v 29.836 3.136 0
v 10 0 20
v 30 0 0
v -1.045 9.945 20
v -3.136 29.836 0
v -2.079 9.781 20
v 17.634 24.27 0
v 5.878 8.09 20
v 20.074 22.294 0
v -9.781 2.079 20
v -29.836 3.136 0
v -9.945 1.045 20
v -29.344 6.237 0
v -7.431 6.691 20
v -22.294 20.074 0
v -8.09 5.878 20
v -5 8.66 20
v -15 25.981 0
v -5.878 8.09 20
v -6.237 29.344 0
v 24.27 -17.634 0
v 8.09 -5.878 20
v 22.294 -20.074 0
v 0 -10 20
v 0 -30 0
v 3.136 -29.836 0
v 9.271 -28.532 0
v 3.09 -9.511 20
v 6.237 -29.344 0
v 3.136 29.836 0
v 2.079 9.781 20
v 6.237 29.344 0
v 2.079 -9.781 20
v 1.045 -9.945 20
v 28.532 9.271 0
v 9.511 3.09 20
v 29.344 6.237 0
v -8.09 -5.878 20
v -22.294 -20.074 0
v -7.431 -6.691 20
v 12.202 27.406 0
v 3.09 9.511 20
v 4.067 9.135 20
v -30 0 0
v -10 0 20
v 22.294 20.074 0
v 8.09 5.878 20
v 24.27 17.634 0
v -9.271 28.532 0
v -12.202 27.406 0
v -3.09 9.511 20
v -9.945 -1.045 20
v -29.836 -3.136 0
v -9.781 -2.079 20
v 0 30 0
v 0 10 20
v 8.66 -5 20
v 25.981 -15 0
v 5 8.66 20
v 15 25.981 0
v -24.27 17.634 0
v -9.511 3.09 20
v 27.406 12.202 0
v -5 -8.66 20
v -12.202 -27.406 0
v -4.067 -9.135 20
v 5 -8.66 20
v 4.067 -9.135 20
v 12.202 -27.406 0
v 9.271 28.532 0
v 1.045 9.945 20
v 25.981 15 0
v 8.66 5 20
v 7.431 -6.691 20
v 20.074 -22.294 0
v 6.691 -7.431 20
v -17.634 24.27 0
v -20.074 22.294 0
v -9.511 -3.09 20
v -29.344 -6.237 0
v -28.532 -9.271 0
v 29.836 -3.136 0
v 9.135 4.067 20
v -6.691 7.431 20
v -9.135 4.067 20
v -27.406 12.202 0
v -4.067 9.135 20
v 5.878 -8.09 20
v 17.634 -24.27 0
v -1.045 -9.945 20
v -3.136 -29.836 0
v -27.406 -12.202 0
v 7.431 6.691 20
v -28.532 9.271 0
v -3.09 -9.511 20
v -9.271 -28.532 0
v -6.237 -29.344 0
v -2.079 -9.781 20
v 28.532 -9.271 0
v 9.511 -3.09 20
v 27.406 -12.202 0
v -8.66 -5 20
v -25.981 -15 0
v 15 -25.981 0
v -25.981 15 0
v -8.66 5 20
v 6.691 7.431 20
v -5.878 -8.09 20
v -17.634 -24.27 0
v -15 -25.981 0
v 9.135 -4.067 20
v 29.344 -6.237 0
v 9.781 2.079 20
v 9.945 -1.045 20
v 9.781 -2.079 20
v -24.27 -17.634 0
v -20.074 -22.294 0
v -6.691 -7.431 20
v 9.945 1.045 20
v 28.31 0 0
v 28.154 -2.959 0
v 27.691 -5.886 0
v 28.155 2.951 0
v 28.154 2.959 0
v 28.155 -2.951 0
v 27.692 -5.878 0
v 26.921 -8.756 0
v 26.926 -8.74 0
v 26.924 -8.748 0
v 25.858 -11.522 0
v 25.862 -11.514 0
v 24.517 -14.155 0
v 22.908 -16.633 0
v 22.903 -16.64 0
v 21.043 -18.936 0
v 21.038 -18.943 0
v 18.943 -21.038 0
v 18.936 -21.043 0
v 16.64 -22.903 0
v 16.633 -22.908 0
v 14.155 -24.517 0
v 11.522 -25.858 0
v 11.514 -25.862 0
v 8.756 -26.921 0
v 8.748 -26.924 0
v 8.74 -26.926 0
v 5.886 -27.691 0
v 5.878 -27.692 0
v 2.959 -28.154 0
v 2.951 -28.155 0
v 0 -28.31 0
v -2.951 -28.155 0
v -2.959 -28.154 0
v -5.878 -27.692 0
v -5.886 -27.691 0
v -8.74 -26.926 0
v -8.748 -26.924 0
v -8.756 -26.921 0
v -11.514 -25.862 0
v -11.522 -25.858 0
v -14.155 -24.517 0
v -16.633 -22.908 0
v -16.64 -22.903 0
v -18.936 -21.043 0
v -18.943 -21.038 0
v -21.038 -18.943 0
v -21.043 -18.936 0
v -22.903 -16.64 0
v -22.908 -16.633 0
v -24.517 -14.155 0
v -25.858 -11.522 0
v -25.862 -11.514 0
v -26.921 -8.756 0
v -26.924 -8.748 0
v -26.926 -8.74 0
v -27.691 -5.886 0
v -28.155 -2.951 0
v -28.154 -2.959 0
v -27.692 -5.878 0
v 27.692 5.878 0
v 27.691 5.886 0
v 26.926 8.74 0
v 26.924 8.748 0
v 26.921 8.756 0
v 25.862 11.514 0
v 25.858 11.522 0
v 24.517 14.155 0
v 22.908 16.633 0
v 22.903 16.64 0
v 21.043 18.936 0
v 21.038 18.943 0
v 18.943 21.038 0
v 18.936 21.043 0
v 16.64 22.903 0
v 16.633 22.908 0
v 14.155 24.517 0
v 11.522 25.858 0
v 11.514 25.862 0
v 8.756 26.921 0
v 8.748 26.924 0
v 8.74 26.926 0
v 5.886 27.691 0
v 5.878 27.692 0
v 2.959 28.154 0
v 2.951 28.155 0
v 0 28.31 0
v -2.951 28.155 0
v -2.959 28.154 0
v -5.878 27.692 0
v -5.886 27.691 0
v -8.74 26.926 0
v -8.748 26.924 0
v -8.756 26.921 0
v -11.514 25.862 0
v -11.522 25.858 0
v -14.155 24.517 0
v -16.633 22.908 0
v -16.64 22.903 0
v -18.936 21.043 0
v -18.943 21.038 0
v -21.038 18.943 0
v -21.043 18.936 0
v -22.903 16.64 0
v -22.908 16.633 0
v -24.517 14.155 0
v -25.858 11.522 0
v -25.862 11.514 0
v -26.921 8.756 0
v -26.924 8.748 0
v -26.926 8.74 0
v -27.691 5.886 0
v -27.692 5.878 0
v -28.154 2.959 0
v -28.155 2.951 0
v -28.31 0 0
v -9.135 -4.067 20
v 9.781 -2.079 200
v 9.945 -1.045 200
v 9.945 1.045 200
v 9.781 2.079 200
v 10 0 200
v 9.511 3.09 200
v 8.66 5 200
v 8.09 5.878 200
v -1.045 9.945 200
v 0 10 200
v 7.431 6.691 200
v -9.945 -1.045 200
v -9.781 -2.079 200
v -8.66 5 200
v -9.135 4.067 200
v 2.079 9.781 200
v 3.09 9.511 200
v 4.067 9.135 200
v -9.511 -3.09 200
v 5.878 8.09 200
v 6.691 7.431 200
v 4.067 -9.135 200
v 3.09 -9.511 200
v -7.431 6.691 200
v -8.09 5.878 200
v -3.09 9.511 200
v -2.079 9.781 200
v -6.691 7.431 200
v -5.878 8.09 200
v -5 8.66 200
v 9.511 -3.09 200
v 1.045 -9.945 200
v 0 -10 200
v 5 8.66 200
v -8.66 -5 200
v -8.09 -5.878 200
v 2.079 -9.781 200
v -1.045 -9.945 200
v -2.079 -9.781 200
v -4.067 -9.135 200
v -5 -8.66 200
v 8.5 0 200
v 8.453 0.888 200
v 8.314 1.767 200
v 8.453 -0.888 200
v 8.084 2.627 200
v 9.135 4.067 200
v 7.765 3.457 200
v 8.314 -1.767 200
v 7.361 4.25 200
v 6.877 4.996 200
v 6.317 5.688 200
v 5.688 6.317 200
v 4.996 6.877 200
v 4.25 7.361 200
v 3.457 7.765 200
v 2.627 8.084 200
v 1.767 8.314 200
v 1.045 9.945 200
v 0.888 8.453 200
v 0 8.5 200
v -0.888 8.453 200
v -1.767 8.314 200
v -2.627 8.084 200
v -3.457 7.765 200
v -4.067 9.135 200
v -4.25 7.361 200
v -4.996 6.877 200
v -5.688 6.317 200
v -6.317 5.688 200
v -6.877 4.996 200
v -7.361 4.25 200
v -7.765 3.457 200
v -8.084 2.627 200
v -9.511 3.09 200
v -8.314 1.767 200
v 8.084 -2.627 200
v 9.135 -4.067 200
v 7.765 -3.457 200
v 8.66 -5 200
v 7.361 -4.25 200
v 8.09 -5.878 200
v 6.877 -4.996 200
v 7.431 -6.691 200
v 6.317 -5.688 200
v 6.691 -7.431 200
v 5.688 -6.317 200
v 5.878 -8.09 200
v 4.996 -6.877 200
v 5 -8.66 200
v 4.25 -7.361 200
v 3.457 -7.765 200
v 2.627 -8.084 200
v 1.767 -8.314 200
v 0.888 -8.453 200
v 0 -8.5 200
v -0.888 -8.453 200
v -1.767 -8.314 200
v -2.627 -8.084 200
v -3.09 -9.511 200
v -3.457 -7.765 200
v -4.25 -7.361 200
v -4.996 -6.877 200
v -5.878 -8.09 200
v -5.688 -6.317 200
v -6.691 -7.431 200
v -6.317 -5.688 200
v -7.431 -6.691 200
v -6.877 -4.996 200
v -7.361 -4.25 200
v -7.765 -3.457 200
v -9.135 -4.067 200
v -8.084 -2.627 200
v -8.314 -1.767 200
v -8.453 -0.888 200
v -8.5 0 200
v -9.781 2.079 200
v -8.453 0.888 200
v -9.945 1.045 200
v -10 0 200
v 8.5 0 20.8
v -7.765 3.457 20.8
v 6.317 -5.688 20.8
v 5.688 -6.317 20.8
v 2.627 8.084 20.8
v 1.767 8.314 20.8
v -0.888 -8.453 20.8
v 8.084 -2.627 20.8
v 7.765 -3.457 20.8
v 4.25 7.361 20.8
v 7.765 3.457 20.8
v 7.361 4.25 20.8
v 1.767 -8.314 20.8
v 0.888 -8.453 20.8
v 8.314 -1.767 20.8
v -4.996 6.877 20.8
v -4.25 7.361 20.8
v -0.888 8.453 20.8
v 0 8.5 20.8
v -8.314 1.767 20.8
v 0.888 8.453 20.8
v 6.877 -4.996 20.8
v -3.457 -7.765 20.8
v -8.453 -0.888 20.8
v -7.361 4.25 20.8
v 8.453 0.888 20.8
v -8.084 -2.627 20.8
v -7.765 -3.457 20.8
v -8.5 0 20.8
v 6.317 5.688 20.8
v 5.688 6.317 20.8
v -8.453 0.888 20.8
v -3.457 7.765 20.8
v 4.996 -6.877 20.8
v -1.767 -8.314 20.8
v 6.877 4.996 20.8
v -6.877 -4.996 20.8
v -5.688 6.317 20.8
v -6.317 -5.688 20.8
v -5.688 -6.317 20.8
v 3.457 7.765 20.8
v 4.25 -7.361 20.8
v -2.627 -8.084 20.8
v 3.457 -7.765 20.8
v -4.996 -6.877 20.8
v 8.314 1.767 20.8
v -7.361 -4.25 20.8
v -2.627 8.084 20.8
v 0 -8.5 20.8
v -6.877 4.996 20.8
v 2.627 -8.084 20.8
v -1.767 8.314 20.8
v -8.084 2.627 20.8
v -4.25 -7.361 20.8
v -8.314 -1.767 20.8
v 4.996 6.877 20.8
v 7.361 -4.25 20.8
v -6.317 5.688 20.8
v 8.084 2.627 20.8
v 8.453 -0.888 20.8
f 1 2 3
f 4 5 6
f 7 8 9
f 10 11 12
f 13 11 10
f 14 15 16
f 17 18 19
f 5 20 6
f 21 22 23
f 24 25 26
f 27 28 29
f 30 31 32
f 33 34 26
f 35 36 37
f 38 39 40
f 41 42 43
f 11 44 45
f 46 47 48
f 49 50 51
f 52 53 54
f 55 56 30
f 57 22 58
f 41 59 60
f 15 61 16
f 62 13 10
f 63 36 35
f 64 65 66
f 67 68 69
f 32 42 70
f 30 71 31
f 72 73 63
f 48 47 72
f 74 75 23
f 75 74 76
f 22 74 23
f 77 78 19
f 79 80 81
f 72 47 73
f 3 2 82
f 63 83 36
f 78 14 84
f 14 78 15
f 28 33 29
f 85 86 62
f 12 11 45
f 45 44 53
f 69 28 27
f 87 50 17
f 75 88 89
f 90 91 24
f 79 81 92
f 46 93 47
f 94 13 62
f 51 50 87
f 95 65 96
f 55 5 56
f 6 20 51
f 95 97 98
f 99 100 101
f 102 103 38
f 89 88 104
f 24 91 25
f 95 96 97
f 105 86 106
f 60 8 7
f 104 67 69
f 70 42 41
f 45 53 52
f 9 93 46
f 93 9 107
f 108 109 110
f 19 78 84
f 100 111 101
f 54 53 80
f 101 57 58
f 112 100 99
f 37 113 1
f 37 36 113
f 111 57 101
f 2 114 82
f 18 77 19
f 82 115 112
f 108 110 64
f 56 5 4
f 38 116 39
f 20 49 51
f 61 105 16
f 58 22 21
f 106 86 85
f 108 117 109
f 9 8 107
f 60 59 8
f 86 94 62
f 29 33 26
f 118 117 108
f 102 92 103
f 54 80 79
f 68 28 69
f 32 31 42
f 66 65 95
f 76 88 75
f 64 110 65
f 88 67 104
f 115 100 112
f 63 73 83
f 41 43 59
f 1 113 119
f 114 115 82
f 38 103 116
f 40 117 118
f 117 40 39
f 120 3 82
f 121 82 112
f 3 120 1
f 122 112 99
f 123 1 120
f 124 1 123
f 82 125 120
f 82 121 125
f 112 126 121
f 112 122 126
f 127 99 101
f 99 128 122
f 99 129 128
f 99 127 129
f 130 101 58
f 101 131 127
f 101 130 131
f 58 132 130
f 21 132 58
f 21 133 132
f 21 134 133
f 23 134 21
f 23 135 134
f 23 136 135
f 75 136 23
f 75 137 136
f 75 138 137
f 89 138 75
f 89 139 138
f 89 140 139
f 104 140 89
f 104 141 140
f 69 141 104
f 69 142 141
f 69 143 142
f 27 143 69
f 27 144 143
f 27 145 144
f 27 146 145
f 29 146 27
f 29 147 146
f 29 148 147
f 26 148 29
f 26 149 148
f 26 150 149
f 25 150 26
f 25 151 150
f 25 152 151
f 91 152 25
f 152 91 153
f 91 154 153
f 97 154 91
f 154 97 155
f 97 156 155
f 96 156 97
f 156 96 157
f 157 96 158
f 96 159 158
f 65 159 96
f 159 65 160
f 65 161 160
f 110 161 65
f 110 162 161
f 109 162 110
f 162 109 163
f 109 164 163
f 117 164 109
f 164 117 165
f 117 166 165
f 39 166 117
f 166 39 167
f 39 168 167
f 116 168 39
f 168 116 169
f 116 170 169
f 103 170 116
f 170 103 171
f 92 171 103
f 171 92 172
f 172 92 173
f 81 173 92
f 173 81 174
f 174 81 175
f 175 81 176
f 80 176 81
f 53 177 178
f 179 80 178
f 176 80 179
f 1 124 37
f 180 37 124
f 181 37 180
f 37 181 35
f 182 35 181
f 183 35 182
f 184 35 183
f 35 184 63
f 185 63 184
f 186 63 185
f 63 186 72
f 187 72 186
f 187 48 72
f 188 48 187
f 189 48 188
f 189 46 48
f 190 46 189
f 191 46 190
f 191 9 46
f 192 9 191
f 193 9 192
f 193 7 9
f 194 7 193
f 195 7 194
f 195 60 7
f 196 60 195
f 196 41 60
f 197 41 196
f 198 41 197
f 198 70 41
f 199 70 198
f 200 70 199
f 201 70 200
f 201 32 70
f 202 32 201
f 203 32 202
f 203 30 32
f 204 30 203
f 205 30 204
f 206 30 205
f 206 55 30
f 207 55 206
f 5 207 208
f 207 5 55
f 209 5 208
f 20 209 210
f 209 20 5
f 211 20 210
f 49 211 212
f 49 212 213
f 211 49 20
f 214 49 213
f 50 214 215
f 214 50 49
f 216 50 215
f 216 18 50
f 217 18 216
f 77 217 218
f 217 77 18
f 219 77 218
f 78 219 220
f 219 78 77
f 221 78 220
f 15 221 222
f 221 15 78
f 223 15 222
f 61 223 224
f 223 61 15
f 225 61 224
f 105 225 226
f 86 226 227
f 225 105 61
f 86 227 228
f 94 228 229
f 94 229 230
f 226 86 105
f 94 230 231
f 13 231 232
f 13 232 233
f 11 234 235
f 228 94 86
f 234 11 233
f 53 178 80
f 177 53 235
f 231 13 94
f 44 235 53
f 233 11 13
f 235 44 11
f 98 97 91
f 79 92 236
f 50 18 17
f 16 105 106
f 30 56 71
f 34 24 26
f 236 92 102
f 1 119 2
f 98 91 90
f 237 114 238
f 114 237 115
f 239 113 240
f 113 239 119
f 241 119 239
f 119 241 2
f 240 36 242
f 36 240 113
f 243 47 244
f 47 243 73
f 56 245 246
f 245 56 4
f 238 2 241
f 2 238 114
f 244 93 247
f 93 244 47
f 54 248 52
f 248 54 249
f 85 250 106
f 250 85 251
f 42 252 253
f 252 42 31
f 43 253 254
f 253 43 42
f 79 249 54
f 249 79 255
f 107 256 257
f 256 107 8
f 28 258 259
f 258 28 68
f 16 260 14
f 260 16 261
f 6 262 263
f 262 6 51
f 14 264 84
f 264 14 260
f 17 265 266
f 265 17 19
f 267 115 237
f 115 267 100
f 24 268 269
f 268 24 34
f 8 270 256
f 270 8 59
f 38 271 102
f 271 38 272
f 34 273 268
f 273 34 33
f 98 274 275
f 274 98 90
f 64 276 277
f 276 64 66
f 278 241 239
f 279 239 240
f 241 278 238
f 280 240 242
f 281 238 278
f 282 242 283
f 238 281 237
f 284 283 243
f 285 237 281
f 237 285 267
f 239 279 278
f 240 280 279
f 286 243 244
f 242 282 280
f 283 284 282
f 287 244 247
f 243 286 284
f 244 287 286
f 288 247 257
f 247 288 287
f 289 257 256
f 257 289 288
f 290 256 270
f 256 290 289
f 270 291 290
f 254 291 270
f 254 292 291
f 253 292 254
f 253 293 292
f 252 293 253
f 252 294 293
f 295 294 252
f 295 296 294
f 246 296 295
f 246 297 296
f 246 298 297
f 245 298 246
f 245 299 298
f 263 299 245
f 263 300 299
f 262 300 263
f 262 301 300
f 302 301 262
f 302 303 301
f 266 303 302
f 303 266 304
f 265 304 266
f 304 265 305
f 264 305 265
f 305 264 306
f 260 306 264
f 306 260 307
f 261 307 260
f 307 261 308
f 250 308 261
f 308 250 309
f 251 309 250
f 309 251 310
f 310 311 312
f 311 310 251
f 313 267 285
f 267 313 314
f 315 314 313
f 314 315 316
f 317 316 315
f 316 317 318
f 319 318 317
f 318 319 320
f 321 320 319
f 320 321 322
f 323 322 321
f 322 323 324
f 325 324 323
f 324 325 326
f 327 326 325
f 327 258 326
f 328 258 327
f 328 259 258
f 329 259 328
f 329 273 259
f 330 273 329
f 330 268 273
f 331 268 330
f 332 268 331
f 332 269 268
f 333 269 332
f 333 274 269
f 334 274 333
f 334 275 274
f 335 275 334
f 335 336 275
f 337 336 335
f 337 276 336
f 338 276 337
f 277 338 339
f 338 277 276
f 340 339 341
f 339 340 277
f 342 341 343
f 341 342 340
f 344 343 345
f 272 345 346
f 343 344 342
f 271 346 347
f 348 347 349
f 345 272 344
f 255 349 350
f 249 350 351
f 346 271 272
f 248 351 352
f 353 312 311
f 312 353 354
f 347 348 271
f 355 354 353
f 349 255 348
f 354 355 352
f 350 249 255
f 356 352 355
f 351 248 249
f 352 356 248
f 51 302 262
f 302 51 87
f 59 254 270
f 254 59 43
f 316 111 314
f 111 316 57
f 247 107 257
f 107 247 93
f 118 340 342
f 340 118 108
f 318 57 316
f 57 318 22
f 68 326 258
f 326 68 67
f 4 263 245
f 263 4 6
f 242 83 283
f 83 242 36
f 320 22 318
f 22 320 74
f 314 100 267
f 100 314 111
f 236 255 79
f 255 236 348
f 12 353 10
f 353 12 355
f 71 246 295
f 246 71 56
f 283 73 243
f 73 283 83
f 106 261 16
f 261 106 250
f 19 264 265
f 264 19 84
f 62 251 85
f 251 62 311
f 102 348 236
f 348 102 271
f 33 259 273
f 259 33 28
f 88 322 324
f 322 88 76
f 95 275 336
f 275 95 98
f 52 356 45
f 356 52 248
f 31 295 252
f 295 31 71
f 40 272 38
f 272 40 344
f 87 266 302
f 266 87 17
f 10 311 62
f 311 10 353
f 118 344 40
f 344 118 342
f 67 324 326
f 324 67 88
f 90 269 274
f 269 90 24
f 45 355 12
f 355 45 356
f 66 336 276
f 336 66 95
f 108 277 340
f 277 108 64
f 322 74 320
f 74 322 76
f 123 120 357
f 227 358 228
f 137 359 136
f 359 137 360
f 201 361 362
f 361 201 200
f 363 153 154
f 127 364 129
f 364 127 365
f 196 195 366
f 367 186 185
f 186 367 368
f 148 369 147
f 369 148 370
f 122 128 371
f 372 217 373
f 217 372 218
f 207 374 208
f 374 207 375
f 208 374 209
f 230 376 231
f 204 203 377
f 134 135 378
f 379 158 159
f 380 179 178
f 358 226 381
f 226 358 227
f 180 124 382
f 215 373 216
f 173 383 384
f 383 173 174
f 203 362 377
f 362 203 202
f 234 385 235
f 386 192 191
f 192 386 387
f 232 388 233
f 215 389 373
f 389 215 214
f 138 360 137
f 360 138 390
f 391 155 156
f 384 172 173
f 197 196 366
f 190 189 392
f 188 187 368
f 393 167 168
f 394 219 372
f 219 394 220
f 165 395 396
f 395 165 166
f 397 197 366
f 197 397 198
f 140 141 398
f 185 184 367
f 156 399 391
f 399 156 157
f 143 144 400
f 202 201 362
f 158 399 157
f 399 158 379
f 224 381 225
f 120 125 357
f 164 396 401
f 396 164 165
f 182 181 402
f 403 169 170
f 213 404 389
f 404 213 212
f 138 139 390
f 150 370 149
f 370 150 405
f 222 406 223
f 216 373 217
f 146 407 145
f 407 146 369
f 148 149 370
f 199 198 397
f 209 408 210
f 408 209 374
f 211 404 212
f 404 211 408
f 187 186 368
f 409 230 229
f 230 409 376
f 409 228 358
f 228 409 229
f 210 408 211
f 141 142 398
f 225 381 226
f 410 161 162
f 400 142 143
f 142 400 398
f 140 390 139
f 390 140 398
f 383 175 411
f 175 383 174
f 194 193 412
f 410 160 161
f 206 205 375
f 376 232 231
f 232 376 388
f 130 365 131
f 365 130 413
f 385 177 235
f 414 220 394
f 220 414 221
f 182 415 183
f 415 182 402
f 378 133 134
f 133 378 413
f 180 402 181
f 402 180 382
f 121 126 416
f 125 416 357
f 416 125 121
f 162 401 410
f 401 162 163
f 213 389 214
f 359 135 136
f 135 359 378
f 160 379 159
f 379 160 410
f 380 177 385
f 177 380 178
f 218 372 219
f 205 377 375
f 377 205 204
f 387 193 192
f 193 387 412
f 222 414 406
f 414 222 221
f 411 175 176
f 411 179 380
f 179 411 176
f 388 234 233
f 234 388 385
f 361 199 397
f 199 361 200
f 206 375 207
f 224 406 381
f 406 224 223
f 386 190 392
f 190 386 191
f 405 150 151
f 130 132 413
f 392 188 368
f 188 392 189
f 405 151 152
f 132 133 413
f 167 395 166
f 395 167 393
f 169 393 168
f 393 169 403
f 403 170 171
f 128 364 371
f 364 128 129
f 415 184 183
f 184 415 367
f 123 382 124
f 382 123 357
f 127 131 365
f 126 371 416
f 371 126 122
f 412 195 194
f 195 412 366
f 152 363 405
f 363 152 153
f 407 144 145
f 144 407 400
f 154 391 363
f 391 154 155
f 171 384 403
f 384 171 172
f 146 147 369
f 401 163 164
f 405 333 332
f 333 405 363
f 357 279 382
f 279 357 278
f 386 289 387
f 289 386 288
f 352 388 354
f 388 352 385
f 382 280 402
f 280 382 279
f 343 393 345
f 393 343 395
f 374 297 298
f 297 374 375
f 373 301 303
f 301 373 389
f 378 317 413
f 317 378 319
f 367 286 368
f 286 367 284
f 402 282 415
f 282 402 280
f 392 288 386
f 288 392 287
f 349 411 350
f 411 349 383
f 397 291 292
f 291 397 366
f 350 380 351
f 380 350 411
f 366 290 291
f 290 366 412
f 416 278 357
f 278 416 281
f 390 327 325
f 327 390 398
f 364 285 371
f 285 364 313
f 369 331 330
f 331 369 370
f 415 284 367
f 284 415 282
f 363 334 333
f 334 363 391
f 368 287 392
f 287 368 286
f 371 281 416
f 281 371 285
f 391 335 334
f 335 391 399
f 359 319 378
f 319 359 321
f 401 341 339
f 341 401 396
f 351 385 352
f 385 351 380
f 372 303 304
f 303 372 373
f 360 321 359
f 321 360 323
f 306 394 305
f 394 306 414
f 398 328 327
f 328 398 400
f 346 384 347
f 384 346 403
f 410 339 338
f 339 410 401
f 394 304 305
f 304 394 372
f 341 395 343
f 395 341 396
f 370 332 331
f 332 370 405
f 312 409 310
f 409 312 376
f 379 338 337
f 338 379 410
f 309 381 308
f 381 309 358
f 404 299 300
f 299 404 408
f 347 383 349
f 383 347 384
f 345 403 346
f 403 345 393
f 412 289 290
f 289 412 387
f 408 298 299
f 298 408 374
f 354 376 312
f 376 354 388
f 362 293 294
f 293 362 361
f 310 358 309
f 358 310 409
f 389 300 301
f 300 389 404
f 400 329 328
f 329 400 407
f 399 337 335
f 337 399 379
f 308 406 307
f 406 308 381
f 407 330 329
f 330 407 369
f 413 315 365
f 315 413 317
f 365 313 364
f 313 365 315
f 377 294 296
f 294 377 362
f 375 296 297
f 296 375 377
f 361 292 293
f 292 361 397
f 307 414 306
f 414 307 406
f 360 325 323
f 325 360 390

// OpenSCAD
H=180;
D=20;
thick=3;//Wandstaerke
funH=20;//Trichterhoehe
$fn=60;
difference(){
union(){
cylinder(d1=3*D,d2=D,h=funH);
translate([0,0,funH])cylinder(d=D,h=H);
}
translate([0,0,-0.2]){
cylinder(d1=3*D-thick,d2=D-thick,h=funH+1);
translate([0,0,funH])cylinder(d=D-thick,h=H+1);
}
}
